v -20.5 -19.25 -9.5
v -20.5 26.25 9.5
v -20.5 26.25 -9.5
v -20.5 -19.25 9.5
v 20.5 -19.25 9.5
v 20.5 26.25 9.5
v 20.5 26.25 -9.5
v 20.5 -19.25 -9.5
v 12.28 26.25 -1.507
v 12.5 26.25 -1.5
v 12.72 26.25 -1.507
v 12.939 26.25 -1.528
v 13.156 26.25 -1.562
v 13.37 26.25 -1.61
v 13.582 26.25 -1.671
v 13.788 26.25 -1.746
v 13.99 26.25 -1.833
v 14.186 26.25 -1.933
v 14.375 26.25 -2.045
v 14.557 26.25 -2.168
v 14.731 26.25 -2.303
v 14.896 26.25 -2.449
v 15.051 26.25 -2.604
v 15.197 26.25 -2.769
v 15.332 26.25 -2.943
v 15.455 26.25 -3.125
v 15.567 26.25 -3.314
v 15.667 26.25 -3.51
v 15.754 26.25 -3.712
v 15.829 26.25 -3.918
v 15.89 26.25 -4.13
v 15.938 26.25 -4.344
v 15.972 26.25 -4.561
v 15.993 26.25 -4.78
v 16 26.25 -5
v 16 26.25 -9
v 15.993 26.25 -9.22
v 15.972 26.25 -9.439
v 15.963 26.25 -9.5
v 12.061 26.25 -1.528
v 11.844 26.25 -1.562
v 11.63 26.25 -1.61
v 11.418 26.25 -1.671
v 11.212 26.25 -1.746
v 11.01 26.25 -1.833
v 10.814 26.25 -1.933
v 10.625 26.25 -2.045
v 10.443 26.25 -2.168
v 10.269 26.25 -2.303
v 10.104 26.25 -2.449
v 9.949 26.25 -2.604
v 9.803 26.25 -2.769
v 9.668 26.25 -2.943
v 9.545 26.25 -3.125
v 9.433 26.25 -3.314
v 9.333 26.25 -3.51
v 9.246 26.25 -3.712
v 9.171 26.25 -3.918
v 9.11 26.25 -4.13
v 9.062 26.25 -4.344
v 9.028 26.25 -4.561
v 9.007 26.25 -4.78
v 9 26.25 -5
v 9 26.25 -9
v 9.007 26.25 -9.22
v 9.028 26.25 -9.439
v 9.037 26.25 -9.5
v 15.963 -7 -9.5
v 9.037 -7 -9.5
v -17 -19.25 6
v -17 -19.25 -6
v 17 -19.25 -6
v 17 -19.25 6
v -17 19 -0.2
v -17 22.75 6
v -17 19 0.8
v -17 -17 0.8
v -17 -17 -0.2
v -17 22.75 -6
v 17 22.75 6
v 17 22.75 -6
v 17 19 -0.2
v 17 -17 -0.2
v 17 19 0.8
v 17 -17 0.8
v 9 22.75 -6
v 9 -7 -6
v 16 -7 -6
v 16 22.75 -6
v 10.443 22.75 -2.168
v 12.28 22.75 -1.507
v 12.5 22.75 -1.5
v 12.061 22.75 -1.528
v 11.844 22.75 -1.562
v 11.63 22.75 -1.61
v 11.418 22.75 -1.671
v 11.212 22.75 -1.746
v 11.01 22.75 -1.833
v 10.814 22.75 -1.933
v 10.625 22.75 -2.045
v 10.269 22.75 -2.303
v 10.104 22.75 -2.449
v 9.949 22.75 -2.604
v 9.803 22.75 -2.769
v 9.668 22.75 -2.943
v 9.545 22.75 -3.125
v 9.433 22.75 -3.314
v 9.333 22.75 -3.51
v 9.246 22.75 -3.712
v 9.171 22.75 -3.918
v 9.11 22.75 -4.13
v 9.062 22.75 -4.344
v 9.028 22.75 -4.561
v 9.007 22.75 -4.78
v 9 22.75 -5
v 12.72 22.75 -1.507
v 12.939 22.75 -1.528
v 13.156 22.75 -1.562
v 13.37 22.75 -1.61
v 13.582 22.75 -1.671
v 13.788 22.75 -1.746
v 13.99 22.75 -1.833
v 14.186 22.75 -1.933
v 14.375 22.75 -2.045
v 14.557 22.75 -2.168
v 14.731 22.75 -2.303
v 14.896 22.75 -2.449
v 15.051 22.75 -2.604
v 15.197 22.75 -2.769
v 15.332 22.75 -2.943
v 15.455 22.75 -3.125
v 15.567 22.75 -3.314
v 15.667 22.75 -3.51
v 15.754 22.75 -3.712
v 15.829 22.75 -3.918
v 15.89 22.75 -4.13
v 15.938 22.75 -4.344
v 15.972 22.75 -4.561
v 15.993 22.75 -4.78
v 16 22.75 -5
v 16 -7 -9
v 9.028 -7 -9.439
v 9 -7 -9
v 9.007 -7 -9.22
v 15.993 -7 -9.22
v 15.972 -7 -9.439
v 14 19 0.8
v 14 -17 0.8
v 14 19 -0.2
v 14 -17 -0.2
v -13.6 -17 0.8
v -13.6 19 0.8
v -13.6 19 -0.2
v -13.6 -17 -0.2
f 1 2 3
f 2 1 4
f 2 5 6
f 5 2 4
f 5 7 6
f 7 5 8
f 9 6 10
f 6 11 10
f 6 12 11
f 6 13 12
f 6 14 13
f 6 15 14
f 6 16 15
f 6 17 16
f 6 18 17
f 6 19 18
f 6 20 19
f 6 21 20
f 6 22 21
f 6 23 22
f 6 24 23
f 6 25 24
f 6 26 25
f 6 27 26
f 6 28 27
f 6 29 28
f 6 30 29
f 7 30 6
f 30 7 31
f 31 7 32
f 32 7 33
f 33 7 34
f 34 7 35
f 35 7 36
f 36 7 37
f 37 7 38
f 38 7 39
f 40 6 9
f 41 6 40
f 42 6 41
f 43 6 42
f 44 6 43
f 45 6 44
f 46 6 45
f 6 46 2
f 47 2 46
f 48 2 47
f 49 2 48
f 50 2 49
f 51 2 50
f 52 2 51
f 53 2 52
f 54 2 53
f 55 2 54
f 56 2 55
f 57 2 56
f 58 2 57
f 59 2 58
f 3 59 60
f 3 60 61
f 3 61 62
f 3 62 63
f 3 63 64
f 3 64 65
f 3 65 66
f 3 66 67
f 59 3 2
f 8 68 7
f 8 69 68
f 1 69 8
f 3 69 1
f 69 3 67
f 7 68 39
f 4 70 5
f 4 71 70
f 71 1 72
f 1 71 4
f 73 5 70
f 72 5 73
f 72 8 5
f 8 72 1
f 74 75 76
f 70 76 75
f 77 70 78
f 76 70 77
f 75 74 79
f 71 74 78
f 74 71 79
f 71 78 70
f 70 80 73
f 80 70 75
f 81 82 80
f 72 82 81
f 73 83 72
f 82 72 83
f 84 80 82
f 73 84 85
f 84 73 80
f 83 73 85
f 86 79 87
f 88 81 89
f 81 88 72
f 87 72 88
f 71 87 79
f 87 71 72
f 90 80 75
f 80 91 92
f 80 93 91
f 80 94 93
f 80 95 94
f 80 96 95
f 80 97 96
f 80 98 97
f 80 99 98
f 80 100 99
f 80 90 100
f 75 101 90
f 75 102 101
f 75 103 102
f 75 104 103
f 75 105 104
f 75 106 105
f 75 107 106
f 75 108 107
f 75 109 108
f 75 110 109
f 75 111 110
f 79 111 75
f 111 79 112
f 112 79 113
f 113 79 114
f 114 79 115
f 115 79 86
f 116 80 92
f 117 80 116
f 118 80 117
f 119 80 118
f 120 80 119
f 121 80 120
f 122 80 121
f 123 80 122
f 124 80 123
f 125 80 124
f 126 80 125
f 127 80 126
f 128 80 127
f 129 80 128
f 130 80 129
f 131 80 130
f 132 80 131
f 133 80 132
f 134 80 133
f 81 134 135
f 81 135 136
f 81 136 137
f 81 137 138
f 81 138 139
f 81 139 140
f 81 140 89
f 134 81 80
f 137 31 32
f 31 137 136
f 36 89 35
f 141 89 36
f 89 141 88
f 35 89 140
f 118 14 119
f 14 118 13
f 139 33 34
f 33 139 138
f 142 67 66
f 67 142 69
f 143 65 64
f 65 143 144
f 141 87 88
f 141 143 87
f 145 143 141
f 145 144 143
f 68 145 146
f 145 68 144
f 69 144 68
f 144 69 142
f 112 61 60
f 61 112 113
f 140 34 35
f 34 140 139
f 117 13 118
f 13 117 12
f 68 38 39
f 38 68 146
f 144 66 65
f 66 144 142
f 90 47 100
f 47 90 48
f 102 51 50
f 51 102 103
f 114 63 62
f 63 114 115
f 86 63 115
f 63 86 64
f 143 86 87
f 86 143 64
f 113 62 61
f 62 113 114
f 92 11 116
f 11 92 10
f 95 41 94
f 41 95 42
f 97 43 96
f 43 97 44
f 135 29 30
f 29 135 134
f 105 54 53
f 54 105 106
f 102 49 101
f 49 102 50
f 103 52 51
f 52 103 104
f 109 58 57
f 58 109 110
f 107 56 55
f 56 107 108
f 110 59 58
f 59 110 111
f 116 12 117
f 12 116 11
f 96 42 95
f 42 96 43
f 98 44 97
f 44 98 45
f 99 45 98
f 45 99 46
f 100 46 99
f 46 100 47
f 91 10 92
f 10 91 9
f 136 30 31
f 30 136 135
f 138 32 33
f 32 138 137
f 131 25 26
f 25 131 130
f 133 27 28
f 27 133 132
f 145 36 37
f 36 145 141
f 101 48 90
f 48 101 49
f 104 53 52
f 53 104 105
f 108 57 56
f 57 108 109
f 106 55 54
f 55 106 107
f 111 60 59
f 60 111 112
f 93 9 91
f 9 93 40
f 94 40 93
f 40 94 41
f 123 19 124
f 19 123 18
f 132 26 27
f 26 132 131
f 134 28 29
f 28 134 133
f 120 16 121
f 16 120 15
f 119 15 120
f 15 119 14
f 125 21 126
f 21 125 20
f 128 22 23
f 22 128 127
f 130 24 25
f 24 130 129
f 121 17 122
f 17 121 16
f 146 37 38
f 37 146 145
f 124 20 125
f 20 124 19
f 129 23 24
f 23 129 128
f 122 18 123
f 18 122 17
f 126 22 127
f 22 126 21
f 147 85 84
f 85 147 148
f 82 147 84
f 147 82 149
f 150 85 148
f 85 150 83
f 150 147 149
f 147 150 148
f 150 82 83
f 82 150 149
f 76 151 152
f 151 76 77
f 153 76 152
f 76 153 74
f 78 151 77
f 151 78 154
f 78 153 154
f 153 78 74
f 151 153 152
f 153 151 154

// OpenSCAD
$fn = 100;


larg = 34;
alt = 12;
prof = 45.5;
esp = 3.5;

module caixa() {
    difference() {
        translate([0,esp,0]) cube([larg+2*esp,prof,alt+2*esp], center=true);
        cube([larg,prof,alt], center=true);
        
        // Furo para o sensor DS18B20
        furo_uniforme();
    
       
       
    }
}
module furo_uniforme(){
    hull(){
        translate([12.5,20,-9]) rotate([90,0,0]) DS18B20();
        translate([12.5,20,-5]) rotate([90,0,0]) DS18B20();
    }
}

module tampa() {
    difference() {
        translate([0,esp,0]) cube([larg+2*esp,esp,alt+2*esp], center=true);
        translate([0,0,4])cube([8,10,3], center = true);
    }
}

module DS18B20() {
    cylinder(d=7, h=54, center=true);
}
module ima() {
    cylinder( d=8.3, h=3, center=true);
}
module nicho(){
    cube([36,3.4,1]);
    
    
}
//translate([0,-30,0]) tampa();
//rotate([0,0,-90])

        //nicho para melhor encaixe
translate([14,19,-0.2])rotate([0,0,-90])nicho();
translate([-17,19,-0.2])rotate([0,0,-90])nicho();

caixa();
